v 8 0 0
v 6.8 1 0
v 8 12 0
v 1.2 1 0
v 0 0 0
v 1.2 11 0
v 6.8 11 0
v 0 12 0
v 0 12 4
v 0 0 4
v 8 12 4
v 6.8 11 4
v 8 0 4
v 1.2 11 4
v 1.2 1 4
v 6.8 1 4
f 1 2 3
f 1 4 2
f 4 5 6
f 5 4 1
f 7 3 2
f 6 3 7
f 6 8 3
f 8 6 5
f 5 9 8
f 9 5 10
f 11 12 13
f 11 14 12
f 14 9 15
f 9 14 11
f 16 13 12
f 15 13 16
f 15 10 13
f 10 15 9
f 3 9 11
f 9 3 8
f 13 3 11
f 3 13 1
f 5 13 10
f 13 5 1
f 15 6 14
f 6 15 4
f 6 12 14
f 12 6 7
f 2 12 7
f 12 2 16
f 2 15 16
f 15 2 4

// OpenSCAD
// IR LED Holder for testing
// High quality settings
$fn = 100;

// Main dimensions
plate_width = 8.00;
plate_height = 12.00;

hole_width = 5.60;
hole_height = 10.00;
hole_thickness = 16.00;

thickness = 4.00;

// Calculations
hole_x_translation = plate_width / 2.0;
hole_y_translation = plate_height / 2.0;

difference() {
  translate([0, 0, 0])
  linear_extrude(height = thickness)
  hull() {
    square([plate_width, plate_height]);
  }

  translate([hole_x_translation, hole_y_translation, 0])
  linear_extrude(height = hole_thickness)
  square([hole_width, hole_height], center = true);
}
